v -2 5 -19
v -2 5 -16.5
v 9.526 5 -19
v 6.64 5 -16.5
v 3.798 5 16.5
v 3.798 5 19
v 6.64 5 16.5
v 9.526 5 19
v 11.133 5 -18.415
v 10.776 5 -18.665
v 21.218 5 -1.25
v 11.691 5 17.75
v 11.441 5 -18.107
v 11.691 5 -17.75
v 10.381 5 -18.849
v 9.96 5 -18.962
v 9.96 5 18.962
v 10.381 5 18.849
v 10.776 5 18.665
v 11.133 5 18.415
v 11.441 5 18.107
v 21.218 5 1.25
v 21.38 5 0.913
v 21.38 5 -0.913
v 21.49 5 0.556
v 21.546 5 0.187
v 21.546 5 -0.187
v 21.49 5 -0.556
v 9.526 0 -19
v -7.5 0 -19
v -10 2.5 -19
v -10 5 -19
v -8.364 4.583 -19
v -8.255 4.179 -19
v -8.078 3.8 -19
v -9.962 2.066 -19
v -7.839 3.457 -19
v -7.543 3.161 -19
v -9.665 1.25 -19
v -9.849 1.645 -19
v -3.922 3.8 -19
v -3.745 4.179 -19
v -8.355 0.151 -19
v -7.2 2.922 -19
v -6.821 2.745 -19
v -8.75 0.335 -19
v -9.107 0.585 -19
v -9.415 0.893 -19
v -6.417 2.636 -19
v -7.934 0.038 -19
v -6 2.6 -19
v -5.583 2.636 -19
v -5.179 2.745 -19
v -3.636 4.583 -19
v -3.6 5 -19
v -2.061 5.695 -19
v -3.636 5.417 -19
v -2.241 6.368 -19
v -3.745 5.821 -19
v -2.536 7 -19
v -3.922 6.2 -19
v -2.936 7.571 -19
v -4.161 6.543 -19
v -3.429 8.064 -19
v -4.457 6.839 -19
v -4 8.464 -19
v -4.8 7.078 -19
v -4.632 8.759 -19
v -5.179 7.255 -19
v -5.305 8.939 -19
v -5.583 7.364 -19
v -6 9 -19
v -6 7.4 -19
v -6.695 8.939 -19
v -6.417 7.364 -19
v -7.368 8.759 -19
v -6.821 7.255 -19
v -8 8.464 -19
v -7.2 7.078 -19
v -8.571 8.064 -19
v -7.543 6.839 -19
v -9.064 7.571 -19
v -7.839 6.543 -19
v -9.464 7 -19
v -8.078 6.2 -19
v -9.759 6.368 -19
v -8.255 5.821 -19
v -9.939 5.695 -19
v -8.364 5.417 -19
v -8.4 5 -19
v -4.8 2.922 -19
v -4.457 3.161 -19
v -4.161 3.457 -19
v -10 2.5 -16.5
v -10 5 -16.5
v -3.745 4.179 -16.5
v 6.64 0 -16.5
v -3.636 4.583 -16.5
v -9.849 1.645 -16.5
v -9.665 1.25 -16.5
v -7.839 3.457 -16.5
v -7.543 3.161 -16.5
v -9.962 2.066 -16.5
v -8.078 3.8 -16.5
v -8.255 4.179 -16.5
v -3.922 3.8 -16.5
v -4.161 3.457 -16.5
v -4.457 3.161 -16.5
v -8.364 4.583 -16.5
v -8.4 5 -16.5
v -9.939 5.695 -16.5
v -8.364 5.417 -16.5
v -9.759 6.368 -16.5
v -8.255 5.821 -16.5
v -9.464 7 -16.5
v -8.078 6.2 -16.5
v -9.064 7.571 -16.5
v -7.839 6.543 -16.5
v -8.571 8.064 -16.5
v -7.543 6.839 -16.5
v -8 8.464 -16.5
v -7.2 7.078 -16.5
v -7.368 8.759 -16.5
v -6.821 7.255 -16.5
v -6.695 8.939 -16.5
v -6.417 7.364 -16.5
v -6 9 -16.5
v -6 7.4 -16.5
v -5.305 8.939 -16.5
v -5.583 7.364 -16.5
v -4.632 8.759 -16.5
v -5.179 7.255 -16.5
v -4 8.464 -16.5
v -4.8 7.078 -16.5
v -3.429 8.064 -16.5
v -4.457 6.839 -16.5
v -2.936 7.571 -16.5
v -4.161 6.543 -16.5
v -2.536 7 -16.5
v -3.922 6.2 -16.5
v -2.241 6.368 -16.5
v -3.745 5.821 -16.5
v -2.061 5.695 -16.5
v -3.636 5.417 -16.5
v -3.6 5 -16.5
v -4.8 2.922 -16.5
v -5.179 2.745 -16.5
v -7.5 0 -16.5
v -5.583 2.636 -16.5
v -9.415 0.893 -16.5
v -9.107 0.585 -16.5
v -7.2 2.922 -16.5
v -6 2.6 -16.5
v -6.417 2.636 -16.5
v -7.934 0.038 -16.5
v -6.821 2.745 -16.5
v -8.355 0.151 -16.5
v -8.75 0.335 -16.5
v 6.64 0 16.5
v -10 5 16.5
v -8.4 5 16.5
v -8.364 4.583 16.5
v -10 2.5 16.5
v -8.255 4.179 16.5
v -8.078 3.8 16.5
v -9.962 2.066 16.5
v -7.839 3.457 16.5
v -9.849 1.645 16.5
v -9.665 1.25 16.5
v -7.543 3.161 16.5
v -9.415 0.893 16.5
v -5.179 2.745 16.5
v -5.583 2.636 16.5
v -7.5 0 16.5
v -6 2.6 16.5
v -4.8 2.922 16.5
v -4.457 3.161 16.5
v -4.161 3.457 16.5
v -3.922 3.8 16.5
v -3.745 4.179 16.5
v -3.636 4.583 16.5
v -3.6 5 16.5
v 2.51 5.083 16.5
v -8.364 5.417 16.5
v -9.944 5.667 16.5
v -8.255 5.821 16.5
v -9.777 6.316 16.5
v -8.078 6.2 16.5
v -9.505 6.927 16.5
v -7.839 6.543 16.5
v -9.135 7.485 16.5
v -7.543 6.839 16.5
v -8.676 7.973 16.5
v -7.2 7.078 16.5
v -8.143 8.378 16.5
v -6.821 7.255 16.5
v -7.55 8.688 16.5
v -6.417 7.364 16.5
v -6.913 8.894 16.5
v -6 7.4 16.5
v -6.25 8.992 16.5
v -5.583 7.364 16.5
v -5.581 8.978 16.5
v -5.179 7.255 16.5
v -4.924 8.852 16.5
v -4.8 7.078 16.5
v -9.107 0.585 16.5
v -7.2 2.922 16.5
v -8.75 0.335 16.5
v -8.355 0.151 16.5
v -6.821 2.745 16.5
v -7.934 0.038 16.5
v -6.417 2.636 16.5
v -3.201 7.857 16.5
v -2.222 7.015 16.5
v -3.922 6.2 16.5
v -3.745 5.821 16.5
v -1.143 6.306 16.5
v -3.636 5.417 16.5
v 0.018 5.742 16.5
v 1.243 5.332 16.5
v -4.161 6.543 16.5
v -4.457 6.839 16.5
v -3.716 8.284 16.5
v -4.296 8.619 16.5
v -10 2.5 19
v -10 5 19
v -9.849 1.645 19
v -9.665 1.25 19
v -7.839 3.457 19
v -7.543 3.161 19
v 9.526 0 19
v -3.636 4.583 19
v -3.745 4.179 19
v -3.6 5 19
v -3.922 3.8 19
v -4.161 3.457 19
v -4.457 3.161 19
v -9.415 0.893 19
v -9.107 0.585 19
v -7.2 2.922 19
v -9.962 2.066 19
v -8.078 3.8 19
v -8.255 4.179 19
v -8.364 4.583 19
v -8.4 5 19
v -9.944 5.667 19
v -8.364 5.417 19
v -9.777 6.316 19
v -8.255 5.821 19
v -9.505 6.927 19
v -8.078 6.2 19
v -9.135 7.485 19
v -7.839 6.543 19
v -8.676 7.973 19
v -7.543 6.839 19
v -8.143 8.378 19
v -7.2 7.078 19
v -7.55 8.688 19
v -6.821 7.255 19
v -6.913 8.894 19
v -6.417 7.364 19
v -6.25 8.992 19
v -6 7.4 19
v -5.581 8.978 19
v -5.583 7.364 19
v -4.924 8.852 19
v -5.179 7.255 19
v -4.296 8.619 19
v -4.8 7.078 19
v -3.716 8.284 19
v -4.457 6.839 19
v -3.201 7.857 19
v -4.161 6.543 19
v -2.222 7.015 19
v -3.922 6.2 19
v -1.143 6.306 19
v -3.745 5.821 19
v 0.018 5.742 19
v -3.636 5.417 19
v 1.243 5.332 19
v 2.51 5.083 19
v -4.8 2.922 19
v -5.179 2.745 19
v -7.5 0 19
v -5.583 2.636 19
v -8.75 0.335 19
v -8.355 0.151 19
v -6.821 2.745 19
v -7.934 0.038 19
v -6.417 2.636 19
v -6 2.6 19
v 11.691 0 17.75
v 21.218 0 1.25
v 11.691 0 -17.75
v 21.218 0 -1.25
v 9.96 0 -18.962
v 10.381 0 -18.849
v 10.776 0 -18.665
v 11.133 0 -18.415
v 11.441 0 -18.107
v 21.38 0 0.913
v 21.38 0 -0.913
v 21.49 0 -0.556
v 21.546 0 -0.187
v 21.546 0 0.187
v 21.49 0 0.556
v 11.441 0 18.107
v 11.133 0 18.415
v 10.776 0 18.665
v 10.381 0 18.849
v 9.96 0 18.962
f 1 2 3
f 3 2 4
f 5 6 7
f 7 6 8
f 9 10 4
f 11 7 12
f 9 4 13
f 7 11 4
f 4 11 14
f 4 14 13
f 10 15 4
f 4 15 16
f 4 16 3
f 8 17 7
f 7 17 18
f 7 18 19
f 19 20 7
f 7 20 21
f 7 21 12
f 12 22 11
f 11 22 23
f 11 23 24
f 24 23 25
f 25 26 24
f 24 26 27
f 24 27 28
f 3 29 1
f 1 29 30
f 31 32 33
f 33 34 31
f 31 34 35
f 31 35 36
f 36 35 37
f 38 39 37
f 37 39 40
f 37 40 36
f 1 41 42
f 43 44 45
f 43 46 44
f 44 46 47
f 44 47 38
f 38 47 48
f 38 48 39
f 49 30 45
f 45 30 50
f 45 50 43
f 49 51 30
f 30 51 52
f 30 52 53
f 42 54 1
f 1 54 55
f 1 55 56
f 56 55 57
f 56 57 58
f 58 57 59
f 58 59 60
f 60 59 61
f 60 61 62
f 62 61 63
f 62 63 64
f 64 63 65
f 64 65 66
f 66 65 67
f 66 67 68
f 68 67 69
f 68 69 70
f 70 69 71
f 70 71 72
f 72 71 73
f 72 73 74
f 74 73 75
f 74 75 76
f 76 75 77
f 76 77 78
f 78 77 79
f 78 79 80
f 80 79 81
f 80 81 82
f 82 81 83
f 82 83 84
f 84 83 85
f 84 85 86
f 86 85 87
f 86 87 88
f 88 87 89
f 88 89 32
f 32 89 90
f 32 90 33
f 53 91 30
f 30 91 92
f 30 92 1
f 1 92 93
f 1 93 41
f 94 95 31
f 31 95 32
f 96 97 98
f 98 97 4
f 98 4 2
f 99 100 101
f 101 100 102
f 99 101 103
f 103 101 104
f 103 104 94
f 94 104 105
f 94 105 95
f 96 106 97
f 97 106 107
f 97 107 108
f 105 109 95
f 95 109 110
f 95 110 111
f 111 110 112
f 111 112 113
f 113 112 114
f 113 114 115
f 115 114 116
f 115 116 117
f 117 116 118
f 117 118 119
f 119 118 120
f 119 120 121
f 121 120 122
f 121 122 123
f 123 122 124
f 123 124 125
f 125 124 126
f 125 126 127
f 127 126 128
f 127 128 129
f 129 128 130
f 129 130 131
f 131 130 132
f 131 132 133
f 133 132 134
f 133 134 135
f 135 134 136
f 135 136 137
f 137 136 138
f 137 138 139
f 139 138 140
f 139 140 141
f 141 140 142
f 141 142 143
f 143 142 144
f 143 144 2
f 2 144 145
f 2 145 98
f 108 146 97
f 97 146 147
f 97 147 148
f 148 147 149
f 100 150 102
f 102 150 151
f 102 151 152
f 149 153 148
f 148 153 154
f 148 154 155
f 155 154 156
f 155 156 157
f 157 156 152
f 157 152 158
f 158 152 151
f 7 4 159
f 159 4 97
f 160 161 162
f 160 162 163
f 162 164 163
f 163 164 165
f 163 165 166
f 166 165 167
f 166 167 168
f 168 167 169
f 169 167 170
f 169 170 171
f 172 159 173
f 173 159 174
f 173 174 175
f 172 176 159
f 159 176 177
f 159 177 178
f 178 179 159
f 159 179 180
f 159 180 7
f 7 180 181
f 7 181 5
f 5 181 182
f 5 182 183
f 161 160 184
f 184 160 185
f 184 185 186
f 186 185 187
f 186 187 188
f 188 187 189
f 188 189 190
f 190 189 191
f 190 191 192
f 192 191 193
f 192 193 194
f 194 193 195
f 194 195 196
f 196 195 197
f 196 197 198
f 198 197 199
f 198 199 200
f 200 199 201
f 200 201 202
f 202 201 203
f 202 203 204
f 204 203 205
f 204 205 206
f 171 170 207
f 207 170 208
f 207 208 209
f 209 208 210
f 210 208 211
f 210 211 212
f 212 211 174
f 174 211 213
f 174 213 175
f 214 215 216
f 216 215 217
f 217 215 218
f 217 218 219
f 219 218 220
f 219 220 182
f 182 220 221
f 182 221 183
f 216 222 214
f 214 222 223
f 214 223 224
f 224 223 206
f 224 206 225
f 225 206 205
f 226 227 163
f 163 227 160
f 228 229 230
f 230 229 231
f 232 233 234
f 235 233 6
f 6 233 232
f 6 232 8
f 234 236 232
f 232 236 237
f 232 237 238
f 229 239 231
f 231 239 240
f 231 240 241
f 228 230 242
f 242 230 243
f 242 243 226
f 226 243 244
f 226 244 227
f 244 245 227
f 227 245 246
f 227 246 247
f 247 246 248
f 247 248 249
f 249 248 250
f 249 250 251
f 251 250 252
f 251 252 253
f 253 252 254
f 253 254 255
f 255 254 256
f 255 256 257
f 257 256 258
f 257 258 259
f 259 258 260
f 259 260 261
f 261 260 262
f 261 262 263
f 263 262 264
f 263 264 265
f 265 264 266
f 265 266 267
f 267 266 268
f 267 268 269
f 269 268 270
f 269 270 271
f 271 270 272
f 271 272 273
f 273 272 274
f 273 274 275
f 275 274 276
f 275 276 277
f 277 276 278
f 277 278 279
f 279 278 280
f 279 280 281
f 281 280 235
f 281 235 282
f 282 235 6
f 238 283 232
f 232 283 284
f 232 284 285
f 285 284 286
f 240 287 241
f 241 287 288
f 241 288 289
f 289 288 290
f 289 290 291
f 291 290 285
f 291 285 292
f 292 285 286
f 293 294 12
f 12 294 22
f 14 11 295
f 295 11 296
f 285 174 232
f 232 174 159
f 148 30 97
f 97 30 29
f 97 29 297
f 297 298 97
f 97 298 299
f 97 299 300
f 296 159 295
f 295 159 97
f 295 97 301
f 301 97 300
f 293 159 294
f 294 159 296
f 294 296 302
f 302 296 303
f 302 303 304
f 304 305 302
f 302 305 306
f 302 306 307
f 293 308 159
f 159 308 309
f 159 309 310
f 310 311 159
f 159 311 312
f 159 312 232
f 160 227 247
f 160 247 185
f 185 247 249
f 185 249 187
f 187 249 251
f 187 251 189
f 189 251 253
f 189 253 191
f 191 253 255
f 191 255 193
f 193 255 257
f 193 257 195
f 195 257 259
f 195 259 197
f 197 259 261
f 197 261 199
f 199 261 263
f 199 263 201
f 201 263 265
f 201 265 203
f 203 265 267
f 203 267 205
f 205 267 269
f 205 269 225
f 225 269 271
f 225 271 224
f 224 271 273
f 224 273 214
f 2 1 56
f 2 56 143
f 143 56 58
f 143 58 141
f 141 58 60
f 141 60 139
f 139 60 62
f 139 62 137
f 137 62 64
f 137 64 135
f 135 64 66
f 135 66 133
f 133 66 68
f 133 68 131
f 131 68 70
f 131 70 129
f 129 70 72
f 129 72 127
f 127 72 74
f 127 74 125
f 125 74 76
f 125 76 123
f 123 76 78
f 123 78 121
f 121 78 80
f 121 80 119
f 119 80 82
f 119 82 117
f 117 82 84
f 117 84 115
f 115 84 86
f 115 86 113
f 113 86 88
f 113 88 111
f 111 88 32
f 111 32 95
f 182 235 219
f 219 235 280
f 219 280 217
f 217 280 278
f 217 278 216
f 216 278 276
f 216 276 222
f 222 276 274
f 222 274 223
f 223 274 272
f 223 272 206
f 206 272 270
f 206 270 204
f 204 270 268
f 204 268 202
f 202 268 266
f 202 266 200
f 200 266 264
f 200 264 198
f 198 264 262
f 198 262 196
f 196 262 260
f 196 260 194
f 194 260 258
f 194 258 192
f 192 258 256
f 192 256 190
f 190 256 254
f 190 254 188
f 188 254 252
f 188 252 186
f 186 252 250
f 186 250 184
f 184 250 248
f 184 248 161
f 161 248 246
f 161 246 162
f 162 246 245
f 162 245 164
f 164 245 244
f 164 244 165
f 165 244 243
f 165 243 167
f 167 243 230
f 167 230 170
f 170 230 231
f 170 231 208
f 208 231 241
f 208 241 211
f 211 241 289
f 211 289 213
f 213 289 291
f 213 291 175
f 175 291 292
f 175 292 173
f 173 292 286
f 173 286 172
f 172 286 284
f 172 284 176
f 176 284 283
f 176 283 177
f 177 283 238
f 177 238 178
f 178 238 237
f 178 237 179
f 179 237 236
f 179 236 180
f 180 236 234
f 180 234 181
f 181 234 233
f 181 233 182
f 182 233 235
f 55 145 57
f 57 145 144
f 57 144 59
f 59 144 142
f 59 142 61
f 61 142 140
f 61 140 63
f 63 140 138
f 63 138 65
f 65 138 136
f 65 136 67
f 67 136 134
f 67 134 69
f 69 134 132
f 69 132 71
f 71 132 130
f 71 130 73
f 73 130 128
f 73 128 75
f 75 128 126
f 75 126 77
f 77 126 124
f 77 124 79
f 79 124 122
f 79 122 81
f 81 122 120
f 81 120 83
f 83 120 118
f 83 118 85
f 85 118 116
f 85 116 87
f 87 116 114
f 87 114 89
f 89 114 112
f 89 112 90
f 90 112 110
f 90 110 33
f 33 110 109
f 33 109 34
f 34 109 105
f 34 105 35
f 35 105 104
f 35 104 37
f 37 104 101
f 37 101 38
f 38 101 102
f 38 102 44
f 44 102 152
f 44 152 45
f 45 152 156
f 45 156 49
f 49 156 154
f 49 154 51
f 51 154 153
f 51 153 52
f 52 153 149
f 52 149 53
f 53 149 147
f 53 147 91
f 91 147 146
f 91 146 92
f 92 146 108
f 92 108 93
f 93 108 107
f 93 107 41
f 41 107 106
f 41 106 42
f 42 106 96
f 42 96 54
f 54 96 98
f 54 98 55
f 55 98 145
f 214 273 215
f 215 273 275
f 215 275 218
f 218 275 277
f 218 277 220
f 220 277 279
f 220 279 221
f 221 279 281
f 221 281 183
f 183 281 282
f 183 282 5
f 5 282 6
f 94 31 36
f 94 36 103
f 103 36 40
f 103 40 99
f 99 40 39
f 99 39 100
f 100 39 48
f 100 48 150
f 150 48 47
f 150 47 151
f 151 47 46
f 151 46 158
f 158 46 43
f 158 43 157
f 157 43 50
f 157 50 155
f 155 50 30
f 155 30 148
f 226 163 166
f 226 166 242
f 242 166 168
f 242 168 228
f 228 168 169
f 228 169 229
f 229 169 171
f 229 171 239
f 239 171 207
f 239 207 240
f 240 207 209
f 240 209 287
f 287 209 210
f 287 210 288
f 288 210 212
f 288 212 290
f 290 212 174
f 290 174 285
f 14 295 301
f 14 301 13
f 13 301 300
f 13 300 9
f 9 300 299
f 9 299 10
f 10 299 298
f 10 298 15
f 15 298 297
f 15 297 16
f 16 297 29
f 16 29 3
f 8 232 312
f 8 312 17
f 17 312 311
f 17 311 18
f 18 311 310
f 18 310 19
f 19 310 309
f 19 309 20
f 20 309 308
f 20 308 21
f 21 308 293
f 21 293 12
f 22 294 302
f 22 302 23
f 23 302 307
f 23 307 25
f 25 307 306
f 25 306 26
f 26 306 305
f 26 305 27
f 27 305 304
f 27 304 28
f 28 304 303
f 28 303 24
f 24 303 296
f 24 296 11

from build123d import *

# Parameters (mm, degrees)
BOSS_EXTRUDE1_DEPTH  = 5
BOSS_EXTRUDE2_DEPTH  = 2.5
M4_CLEARANCE_HOLE2_D = 4.8
FILLET1_R            = 10
FILLET2_R            = 2.5


with BuildPart() as part:
    # Sketch1 → Boss-Extrude1 (new body)
    with BuildSketch(Plane(origin=(0, 0, 0), x_dir=(1, 0, 0), z_dir=(0, 1, 0))):
        Polygon((10.969655115, 19), (21.939310229, 0), (10.969655115, -19), (0, -19), (-10, -19), (-10, -16.5), (6.639528096, -16.5), (6.639528096, 16.5), (-10, 16.5), (-10, 19), (0, 19), align=None)
    extrude(amount=BOSS_EXTRUDE1_DEPTH)

    # Sketch2 → Boss-Extrude2 (add)
    with BuildSketch(Plane.XY.offset(19)):
        with BuildLine():
            Line((-10, 5), (-2, 5))
            ThreePointArc((-2, 5), (-6, 9), (-10, 5))
        make_face()
    boss_extrude2 = extrude(amount=-BOSS_EXTRUDE2_DEPTH)

    # Mirror1: Boss-Extrude2 across plane
    add(boss_extrude2.mirror(Plane.XY))

    # M4 Clearance Hole2 (through all)
    with Locations(Plane(origin=(-6, 5, 19), x_dir=(1, 0, 0), z_dir=(0, 0, 1))):
        with Locations((0, 0)):
            Hole(M4_CLEARANCE_HOLE2_D / 2)

    # Fillet1
    fillet1_edges = [part.edges().sort_by_distance(p)[0] for p in [
        (-2, 5, 17.75),
    ]]
    fillet(fillet1_edges, radius=FILLET1_R)

    # Fillet2
    fillet2_edges = [part.edges().sort_by_distance(p)[0] for p in [
        (-10, 0, 17.75),
        (-10, 0, -17.75),
        (10.969655115, 2.5, -19),
        (21.939310229, 2.5, 0),
        (10.969655115, 2.5, 19),
    ]]
    fillet(fillet2_edges, radius=FILLET2_R)


solid = part.part
